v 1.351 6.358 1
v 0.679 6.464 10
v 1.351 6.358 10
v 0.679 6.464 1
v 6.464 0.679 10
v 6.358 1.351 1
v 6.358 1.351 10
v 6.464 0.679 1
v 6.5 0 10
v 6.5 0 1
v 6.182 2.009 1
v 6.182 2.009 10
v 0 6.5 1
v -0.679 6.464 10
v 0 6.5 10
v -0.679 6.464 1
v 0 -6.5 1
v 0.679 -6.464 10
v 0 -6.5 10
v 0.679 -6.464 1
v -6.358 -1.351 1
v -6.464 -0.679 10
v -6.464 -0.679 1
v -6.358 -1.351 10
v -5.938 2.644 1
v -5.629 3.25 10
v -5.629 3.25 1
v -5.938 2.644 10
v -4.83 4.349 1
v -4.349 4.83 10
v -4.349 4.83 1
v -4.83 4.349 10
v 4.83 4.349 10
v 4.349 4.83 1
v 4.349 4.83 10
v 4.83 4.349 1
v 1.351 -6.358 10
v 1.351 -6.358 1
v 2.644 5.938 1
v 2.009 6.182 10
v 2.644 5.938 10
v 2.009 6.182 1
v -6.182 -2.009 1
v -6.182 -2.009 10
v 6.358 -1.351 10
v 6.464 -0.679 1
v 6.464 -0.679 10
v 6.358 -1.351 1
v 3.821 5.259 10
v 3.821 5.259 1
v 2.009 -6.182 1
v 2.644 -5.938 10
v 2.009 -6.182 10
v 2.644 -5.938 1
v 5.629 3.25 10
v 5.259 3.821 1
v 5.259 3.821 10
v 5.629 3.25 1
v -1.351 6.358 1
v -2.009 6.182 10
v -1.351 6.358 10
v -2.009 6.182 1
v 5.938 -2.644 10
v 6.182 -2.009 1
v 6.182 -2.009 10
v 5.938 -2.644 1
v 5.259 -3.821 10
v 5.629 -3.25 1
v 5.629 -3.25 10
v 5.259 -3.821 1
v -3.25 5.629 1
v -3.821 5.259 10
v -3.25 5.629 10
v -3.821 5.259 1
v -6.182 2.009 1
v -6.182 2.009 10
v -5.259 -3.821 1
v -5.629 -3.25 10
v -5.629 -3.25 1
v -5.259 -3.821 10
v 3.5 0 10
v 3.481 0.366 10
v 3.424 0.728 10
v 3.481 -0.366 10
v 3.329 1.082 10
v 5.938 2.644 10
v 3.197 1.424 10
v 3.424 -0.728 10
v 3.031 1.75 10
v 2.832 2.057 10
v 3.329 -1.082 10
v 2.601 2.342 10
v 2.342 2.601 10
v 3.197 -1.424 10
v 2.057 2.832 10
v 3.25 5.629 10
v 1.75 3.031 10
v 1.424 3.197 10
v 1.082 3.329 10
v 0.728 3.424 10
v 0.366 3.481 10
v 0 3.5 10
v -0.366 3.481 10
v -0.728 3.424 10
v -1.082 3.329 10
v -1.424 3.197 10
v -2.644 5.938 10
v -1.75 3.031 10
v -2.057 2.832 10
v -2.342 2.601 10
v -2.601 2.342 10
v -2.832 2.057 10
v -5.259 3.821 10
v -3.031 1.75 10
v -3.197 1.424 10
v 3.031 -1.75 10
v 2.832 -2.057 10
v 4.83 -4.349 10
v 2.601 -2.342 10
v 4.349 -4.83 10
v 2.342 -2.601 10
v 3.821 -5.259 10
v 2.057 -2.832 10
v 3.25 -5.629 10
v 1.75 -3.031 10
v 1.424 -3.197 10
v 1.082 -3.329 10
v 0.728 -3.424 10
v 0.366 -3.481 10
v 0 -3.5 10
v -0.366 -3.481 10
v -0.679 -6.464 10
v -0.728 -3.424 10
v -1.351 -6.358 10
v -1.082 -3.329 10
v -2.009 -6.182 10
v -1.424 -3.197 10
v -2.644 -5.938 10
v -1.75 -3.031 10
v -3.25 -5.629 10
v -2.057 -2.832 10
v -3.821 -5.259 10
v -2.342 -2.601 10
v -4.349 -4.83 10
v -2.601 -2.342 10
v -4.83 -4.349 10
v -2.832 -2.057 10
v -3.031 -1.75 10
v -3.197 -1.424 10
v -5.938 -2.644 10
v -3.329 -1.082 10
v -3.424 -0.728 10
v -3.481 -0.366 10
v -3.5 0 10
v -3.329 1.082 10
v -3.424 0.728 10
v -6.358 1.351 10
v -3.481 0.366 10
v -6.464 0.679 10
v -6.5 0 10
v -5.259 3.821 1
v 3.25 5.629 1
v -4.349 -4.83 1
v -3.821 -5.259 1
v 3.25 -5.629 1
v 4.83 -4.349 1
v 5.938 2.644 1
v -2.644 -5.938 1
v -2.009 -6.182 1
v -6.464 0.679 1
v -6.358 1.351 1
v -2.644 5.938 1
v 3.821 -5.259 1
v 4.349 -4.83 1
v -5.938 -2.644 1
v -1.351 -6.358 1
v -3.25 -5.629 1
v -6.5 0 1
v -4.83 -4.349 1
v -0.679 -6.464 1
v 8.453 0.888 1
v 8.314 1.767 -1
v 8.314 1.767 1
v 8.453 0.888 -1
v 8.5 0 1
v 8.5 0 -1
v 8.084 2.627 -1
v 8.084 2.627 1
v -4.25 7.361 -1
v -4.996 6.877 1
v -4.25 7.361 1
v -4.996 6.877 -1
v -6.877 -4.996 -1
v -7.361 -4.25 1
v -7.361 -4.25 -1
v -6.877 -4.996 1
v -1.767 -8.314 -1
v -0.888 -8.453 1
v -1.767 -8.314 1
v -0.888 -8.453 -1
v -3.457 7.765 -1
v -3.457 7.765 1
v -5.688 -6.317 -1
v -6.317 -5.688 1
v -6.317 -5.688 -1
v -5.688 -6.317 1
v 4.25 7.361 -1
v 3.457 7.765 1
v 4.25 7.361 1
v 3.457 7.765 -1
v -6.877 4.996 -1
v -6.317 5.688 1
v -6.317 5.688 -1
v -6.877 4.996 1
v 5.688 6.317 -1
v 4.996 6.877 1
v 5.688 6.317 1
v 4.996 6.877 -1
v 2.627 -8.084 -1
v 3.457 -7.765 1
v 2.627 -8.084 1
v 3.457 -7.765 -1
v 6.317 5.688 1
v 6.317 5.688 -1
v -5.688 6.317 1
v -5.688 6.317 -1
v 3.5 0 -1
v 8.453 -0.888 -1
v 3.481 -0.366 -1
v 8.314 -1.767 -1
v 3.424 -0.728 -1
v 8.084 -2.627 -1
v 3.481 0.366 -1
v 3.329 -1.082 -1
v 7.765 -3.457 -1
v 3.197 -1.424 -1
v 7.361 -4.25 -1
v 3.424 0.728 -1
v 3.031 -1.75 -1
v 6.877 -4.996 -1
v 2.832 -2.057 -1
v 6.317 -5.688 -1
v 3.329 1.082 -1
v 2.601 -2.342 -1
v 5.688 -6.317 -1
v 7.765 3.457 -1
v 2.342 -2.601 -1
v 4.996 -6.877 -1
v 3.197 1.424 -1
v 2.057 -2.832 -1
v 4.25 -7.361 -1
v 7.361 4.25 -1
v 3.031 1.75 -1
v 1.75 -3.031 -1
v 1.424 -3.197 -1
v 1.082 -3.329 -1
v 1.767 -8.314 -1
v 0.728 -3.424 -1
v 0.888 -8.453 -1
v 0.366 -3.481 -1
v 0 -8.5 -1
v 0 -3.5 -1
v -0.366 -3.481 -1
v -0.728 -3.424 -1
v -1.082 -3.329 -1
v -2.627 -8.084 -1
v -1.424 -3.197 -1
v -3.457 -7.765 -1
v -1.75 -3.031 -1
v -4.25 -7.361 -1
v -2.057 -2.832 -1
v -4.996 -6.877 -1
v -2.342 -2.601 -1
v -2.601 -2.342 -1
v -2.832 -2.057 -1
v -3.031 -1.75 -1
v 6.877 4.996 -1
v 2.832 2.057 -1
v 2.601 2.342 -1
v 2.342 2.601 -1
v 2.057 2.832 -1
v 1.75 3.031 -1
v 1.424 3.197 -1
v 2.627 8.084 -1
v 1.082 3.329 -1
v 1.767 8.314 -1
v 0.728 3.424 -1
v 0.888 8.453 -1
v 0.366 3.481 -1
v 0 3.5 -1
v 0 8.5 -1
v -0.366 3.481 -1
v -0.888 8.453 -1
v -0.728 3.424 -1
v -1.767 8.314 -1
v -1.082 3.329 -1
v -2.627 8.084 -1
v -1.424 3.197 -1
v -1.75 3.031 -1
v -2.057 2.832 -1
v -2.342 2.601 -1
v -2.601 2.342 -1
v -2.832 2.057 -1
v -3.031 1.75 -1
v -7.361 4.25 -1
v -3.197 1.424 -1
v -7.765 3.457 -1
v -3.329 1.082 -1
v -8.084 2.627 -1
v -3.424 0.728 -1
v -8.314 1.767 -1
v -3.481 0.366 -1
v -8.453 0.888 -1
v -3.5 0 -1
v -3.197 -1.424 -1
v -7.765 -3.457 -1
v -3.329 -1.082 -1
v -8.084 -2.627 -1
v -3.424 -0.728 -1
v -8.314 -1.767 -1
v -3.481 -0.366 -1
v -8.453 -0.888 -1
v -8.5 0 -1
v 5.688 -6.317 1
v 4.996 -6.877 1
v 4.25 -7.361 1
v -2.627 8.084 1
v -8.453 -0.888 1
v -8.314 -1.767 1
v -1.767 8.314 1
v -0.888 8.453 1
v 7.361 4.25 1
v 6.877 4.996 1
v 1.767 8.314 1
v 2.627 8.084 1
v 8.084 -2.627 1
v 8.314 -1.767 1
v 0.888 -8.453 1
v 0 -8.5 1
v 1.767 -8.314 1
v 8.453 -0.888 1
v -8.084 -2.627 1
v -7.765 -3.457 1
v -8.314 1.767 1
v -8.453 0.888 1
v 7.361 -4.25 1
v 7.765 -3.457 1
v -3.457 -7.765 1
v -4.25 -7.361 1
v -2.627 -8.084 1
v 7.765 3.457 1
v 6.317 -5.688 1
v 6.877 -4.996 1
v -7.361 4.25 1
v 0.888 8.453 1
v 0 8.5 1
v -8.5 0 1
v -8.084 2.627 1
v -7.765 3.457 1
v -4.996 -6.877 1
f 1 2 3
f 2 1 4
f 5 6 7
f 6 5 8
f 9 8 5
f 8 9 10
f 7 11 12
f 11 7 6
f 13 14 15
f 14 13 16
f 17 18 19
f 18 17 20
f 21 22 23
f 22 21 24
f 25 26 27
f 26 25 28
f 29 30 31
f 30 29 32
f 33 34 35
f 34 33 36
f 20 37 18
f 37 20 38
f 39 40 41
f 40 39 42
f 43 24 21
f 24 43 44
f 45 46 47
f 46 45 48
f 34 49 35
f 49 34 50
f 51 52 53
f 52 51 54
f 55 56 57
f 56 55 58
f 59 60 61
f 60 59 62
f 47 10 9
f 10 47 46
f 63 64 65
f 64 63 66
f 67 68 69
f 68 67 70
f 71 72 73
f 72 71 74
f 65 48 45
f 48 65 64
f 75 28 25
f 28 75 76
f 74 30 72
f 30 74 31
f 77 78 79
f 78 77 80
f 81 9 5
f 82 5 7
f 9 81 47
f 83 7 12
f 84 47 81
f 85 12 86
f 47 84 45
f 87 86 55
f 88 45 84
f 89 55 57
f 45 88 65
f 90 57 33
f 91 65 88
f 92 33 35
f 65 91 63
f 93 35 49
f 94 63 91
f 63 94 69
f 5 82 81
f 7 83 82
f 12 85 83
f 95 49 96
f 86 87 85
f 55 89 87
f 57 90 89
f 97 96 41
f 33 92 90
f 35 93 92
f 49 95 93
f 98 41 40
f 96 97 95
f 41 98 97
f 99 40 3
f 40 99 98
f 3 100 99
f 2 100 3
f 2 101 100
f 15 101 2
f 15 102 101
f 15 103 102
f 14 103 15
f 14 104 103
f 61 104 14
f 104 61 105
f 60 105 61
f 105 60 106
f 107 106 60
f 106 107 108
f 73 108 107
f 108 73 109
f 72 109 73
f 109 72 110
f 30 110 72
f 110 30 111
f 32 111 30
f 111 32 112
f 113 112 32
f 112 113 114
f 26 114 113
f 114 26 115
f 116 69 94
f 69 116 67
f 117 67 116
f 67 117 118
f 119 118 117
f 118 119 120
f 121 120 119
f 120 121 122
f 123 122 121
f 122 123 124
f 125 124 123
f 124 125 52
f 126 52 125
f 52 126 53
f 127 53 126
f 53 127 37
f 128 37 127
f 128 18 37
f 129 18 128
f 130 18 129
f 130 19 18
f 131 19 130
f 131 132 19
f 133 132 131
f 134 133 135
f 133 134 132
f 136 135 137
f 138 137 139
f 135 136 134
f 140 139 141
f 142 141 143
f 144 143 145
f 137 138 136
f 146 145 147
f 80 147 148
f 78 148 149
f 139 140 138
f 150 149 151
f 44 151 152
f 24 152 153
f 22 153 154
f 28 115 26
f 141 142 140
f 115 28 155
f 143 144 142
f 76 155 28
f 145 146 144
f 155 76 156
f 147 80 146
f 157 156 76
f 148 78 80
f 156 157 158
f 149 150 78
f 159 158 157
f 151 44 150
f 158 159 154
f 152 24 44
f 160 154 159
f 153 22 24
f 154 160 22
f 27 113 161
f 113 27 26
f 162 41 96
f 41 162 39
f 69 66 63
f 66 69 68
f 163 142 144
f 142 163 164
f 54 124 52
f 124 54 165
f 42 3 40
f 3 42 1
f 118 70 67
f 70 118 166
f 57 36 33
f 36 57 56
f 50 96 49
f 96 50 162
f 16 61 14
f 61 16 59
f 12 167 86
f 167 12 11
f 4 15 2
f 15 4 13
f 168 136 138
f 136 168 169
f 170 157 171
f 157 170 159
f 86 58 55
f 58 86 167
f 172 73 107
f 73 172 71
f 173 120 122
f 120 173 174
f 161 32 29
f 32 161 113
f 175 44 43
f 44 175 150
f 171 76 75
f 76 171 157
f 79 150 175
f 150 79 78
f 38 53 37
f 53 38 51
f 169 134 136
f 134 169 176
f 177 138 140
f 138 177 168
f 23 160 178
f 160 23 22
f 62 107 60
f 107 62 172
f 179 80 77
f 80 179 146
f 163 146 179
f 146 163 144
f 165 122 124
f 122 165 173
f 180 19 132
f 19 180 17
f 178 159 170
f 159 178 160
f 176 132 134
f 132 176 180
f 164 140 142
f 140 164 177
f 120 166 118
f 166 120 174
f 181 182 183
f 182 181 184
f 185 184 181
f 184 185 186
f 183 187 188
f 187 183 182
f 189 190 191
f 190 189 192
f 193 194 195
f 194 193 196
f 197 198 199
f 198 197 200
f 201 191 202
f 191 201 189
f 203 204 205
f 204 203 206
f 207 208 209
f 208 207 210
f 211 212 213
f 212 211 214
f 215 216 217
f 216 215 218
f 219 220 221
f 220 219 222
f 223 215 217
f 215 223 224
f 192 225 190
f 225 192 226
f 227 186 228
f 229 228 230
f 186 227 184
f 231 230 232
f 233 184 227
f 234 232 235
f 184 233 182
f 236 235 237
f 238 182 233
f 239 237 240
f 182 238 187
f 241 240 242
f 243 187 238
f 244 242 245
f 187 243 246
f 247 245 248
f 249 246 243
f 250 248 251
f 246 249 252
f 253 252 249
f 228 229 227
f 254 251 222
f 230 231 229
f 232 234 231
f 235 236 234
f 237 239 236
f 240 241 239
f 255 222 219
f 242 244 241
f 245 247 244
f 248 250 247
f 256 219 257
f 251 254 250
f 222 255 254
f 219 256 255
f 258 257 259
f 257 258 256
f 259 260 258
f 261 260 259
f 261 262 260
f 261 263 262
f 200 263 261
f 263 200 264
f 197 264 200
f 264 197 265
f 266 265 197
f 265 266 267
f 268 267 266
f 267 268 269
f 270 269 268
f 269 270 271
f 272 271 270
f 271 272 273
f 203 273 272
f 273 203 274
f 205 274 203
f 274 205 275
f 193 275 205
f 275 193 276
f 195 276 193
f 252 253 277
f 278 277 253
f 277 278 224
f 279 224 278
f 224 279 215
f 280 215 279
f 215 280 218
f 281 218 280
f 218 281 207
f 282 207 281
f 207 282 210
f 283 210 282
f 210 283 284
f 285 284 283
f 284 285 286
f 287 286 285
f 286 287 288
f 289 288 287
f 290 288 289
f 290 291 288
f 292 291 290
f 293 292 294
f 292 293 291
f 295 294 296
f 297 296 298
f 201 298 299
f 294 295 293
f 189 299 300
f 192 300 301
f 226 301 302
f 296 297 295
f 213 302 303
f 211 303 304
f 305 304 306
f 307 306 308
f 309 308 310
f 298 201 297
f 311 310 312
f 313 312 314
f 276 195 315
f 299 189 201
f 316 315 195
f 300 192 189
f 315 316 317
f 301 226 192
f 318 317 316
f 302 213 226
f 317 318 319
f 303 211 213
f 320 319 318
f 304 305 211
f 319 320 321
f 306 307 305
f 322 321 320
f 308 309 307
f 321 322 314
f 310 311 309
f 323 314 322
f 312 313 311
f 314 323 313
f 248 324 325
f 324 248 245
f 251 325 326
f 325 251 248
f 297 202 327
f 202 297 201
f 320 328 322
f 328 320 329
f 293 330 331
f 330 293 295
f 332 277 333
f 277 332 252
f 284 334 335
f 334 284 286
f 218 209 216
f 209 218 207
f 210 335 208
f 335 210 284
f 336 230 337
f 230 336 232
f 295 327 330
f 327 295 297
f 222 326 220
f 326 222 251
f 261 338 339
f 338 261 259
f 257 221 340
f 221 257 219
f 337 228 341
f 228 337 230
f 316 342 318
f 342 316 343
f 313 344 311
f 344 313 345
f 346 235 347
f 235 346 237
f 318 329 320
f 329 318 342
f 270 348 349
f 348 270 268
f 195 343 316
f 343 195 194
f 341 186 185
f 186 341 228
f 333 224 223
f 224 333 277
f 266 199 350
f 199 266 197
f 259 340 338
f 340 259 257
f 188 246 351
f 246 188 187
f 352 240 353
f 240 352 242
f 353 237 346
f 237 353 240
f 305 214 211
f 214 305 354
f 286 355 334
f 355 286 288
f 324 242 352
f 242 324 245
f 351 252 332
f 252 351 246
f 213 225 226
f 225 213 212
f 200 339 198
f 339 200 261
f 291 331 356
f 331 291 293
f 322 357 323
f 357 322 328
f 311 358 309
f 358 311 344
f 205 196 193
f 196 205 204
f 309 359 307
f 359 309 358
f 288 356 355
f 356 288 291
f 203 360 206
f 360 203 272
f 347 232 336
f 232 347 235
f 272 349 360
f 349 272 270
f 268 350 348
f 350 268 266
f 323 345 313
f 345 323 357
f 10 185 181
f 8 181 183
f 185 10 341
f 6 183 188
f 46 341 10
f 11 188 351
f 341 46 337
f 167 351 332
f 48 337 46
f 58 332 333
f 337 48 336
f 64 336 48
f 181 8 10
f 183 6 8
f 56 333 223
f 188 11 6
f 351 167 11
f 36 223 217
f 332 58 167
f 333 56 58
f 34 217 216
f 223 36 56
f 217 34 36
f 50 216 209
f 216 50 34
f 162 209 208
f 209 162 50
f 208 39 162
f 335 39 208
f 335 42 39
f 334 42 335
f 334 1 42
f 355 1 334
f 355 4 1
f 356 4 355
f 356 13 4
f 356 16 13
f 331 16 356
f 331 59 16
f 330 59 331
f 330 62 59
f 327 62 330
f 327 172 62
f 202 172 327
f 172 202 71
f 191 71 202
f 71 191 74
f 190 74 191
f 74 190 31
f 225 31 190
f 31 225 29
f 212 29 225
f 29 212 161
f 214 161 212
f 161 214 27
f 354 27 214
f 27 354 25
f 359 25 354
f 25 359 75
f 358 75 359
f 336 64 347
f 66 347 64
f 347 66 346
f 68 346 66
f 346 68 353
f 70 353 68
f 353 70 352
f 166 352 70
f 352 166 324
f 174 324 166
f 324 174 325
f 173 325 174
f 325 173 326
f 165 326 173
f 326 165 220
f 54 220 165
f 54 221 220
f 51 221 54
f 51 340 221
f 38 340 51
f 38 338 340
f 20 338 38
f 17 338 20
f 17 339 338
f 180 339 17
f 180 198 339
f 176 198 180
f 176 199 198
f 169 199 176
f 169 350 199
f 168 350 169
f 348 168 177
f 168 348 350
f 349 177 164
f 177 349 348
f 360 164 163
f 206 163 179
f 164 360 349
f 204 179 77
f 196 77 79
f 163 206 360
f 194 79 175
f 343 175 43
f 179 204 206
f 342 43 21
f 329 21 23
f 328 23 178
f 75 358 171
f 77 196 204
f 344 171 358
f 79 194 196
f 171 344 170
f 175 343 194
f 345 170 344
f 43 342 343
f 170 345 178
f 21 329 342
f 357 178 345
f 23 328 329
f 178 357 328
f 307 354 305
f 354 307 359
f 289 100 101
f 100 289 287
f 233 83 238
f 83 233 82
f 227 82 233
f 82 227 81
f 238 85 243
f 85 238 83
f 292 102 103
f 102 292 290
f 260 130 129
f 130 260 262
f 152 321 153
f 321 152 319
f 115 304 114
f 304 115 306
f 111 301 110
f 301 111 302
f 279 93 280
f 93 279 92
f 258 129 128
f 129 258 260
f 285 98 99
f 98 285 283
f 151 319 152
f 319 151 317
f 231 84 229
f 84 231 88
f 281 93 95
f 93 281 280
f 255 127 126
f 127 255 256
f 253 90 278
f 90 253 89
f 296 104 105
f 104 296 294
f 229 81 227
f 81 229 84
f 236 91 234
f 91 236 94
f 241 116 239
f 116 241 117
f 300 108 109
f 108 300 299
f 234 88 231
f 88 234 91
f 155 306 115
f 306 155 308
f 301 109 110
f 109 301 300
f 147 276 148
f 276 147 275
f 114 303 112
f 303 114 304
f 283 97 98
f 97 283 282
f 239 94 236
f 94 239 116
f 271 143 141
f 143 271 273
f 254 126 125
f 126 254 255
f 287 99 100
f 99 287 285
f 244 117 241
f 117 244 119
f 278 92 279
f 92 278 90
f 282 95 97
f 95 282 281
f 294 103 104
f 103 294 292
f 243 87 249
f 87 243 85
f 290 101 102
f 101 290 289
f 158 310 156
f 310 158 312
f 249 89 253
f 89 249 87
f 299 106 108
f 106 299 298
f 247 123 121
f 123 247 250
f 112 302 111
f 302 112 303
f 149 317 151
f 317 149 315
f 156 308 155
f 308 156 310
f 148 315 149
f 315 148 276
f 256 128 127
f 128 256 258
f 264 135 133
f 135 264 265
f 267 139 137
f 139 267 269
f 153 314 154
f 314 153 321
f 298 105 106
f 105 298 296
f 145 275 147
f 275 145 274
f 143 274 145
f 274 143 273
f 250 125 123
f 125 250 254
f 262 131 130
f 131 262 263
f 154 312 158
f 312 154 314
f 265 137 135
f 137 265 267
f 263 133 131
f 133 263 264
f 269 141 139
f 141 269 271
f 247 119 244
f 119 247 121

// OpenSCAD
$fn=60;

DTornillo = 7;
DAgujero = 13;
DTope = 17;
Espesor = 10;

difference(){
    union(){
cylinder(d=DAgujero, h=Espesor);
cylinder(d=DTope, h=2, center=true        );
    }
    cylinder(d=DTornillo, h=3*Espesor, center=true);
}
